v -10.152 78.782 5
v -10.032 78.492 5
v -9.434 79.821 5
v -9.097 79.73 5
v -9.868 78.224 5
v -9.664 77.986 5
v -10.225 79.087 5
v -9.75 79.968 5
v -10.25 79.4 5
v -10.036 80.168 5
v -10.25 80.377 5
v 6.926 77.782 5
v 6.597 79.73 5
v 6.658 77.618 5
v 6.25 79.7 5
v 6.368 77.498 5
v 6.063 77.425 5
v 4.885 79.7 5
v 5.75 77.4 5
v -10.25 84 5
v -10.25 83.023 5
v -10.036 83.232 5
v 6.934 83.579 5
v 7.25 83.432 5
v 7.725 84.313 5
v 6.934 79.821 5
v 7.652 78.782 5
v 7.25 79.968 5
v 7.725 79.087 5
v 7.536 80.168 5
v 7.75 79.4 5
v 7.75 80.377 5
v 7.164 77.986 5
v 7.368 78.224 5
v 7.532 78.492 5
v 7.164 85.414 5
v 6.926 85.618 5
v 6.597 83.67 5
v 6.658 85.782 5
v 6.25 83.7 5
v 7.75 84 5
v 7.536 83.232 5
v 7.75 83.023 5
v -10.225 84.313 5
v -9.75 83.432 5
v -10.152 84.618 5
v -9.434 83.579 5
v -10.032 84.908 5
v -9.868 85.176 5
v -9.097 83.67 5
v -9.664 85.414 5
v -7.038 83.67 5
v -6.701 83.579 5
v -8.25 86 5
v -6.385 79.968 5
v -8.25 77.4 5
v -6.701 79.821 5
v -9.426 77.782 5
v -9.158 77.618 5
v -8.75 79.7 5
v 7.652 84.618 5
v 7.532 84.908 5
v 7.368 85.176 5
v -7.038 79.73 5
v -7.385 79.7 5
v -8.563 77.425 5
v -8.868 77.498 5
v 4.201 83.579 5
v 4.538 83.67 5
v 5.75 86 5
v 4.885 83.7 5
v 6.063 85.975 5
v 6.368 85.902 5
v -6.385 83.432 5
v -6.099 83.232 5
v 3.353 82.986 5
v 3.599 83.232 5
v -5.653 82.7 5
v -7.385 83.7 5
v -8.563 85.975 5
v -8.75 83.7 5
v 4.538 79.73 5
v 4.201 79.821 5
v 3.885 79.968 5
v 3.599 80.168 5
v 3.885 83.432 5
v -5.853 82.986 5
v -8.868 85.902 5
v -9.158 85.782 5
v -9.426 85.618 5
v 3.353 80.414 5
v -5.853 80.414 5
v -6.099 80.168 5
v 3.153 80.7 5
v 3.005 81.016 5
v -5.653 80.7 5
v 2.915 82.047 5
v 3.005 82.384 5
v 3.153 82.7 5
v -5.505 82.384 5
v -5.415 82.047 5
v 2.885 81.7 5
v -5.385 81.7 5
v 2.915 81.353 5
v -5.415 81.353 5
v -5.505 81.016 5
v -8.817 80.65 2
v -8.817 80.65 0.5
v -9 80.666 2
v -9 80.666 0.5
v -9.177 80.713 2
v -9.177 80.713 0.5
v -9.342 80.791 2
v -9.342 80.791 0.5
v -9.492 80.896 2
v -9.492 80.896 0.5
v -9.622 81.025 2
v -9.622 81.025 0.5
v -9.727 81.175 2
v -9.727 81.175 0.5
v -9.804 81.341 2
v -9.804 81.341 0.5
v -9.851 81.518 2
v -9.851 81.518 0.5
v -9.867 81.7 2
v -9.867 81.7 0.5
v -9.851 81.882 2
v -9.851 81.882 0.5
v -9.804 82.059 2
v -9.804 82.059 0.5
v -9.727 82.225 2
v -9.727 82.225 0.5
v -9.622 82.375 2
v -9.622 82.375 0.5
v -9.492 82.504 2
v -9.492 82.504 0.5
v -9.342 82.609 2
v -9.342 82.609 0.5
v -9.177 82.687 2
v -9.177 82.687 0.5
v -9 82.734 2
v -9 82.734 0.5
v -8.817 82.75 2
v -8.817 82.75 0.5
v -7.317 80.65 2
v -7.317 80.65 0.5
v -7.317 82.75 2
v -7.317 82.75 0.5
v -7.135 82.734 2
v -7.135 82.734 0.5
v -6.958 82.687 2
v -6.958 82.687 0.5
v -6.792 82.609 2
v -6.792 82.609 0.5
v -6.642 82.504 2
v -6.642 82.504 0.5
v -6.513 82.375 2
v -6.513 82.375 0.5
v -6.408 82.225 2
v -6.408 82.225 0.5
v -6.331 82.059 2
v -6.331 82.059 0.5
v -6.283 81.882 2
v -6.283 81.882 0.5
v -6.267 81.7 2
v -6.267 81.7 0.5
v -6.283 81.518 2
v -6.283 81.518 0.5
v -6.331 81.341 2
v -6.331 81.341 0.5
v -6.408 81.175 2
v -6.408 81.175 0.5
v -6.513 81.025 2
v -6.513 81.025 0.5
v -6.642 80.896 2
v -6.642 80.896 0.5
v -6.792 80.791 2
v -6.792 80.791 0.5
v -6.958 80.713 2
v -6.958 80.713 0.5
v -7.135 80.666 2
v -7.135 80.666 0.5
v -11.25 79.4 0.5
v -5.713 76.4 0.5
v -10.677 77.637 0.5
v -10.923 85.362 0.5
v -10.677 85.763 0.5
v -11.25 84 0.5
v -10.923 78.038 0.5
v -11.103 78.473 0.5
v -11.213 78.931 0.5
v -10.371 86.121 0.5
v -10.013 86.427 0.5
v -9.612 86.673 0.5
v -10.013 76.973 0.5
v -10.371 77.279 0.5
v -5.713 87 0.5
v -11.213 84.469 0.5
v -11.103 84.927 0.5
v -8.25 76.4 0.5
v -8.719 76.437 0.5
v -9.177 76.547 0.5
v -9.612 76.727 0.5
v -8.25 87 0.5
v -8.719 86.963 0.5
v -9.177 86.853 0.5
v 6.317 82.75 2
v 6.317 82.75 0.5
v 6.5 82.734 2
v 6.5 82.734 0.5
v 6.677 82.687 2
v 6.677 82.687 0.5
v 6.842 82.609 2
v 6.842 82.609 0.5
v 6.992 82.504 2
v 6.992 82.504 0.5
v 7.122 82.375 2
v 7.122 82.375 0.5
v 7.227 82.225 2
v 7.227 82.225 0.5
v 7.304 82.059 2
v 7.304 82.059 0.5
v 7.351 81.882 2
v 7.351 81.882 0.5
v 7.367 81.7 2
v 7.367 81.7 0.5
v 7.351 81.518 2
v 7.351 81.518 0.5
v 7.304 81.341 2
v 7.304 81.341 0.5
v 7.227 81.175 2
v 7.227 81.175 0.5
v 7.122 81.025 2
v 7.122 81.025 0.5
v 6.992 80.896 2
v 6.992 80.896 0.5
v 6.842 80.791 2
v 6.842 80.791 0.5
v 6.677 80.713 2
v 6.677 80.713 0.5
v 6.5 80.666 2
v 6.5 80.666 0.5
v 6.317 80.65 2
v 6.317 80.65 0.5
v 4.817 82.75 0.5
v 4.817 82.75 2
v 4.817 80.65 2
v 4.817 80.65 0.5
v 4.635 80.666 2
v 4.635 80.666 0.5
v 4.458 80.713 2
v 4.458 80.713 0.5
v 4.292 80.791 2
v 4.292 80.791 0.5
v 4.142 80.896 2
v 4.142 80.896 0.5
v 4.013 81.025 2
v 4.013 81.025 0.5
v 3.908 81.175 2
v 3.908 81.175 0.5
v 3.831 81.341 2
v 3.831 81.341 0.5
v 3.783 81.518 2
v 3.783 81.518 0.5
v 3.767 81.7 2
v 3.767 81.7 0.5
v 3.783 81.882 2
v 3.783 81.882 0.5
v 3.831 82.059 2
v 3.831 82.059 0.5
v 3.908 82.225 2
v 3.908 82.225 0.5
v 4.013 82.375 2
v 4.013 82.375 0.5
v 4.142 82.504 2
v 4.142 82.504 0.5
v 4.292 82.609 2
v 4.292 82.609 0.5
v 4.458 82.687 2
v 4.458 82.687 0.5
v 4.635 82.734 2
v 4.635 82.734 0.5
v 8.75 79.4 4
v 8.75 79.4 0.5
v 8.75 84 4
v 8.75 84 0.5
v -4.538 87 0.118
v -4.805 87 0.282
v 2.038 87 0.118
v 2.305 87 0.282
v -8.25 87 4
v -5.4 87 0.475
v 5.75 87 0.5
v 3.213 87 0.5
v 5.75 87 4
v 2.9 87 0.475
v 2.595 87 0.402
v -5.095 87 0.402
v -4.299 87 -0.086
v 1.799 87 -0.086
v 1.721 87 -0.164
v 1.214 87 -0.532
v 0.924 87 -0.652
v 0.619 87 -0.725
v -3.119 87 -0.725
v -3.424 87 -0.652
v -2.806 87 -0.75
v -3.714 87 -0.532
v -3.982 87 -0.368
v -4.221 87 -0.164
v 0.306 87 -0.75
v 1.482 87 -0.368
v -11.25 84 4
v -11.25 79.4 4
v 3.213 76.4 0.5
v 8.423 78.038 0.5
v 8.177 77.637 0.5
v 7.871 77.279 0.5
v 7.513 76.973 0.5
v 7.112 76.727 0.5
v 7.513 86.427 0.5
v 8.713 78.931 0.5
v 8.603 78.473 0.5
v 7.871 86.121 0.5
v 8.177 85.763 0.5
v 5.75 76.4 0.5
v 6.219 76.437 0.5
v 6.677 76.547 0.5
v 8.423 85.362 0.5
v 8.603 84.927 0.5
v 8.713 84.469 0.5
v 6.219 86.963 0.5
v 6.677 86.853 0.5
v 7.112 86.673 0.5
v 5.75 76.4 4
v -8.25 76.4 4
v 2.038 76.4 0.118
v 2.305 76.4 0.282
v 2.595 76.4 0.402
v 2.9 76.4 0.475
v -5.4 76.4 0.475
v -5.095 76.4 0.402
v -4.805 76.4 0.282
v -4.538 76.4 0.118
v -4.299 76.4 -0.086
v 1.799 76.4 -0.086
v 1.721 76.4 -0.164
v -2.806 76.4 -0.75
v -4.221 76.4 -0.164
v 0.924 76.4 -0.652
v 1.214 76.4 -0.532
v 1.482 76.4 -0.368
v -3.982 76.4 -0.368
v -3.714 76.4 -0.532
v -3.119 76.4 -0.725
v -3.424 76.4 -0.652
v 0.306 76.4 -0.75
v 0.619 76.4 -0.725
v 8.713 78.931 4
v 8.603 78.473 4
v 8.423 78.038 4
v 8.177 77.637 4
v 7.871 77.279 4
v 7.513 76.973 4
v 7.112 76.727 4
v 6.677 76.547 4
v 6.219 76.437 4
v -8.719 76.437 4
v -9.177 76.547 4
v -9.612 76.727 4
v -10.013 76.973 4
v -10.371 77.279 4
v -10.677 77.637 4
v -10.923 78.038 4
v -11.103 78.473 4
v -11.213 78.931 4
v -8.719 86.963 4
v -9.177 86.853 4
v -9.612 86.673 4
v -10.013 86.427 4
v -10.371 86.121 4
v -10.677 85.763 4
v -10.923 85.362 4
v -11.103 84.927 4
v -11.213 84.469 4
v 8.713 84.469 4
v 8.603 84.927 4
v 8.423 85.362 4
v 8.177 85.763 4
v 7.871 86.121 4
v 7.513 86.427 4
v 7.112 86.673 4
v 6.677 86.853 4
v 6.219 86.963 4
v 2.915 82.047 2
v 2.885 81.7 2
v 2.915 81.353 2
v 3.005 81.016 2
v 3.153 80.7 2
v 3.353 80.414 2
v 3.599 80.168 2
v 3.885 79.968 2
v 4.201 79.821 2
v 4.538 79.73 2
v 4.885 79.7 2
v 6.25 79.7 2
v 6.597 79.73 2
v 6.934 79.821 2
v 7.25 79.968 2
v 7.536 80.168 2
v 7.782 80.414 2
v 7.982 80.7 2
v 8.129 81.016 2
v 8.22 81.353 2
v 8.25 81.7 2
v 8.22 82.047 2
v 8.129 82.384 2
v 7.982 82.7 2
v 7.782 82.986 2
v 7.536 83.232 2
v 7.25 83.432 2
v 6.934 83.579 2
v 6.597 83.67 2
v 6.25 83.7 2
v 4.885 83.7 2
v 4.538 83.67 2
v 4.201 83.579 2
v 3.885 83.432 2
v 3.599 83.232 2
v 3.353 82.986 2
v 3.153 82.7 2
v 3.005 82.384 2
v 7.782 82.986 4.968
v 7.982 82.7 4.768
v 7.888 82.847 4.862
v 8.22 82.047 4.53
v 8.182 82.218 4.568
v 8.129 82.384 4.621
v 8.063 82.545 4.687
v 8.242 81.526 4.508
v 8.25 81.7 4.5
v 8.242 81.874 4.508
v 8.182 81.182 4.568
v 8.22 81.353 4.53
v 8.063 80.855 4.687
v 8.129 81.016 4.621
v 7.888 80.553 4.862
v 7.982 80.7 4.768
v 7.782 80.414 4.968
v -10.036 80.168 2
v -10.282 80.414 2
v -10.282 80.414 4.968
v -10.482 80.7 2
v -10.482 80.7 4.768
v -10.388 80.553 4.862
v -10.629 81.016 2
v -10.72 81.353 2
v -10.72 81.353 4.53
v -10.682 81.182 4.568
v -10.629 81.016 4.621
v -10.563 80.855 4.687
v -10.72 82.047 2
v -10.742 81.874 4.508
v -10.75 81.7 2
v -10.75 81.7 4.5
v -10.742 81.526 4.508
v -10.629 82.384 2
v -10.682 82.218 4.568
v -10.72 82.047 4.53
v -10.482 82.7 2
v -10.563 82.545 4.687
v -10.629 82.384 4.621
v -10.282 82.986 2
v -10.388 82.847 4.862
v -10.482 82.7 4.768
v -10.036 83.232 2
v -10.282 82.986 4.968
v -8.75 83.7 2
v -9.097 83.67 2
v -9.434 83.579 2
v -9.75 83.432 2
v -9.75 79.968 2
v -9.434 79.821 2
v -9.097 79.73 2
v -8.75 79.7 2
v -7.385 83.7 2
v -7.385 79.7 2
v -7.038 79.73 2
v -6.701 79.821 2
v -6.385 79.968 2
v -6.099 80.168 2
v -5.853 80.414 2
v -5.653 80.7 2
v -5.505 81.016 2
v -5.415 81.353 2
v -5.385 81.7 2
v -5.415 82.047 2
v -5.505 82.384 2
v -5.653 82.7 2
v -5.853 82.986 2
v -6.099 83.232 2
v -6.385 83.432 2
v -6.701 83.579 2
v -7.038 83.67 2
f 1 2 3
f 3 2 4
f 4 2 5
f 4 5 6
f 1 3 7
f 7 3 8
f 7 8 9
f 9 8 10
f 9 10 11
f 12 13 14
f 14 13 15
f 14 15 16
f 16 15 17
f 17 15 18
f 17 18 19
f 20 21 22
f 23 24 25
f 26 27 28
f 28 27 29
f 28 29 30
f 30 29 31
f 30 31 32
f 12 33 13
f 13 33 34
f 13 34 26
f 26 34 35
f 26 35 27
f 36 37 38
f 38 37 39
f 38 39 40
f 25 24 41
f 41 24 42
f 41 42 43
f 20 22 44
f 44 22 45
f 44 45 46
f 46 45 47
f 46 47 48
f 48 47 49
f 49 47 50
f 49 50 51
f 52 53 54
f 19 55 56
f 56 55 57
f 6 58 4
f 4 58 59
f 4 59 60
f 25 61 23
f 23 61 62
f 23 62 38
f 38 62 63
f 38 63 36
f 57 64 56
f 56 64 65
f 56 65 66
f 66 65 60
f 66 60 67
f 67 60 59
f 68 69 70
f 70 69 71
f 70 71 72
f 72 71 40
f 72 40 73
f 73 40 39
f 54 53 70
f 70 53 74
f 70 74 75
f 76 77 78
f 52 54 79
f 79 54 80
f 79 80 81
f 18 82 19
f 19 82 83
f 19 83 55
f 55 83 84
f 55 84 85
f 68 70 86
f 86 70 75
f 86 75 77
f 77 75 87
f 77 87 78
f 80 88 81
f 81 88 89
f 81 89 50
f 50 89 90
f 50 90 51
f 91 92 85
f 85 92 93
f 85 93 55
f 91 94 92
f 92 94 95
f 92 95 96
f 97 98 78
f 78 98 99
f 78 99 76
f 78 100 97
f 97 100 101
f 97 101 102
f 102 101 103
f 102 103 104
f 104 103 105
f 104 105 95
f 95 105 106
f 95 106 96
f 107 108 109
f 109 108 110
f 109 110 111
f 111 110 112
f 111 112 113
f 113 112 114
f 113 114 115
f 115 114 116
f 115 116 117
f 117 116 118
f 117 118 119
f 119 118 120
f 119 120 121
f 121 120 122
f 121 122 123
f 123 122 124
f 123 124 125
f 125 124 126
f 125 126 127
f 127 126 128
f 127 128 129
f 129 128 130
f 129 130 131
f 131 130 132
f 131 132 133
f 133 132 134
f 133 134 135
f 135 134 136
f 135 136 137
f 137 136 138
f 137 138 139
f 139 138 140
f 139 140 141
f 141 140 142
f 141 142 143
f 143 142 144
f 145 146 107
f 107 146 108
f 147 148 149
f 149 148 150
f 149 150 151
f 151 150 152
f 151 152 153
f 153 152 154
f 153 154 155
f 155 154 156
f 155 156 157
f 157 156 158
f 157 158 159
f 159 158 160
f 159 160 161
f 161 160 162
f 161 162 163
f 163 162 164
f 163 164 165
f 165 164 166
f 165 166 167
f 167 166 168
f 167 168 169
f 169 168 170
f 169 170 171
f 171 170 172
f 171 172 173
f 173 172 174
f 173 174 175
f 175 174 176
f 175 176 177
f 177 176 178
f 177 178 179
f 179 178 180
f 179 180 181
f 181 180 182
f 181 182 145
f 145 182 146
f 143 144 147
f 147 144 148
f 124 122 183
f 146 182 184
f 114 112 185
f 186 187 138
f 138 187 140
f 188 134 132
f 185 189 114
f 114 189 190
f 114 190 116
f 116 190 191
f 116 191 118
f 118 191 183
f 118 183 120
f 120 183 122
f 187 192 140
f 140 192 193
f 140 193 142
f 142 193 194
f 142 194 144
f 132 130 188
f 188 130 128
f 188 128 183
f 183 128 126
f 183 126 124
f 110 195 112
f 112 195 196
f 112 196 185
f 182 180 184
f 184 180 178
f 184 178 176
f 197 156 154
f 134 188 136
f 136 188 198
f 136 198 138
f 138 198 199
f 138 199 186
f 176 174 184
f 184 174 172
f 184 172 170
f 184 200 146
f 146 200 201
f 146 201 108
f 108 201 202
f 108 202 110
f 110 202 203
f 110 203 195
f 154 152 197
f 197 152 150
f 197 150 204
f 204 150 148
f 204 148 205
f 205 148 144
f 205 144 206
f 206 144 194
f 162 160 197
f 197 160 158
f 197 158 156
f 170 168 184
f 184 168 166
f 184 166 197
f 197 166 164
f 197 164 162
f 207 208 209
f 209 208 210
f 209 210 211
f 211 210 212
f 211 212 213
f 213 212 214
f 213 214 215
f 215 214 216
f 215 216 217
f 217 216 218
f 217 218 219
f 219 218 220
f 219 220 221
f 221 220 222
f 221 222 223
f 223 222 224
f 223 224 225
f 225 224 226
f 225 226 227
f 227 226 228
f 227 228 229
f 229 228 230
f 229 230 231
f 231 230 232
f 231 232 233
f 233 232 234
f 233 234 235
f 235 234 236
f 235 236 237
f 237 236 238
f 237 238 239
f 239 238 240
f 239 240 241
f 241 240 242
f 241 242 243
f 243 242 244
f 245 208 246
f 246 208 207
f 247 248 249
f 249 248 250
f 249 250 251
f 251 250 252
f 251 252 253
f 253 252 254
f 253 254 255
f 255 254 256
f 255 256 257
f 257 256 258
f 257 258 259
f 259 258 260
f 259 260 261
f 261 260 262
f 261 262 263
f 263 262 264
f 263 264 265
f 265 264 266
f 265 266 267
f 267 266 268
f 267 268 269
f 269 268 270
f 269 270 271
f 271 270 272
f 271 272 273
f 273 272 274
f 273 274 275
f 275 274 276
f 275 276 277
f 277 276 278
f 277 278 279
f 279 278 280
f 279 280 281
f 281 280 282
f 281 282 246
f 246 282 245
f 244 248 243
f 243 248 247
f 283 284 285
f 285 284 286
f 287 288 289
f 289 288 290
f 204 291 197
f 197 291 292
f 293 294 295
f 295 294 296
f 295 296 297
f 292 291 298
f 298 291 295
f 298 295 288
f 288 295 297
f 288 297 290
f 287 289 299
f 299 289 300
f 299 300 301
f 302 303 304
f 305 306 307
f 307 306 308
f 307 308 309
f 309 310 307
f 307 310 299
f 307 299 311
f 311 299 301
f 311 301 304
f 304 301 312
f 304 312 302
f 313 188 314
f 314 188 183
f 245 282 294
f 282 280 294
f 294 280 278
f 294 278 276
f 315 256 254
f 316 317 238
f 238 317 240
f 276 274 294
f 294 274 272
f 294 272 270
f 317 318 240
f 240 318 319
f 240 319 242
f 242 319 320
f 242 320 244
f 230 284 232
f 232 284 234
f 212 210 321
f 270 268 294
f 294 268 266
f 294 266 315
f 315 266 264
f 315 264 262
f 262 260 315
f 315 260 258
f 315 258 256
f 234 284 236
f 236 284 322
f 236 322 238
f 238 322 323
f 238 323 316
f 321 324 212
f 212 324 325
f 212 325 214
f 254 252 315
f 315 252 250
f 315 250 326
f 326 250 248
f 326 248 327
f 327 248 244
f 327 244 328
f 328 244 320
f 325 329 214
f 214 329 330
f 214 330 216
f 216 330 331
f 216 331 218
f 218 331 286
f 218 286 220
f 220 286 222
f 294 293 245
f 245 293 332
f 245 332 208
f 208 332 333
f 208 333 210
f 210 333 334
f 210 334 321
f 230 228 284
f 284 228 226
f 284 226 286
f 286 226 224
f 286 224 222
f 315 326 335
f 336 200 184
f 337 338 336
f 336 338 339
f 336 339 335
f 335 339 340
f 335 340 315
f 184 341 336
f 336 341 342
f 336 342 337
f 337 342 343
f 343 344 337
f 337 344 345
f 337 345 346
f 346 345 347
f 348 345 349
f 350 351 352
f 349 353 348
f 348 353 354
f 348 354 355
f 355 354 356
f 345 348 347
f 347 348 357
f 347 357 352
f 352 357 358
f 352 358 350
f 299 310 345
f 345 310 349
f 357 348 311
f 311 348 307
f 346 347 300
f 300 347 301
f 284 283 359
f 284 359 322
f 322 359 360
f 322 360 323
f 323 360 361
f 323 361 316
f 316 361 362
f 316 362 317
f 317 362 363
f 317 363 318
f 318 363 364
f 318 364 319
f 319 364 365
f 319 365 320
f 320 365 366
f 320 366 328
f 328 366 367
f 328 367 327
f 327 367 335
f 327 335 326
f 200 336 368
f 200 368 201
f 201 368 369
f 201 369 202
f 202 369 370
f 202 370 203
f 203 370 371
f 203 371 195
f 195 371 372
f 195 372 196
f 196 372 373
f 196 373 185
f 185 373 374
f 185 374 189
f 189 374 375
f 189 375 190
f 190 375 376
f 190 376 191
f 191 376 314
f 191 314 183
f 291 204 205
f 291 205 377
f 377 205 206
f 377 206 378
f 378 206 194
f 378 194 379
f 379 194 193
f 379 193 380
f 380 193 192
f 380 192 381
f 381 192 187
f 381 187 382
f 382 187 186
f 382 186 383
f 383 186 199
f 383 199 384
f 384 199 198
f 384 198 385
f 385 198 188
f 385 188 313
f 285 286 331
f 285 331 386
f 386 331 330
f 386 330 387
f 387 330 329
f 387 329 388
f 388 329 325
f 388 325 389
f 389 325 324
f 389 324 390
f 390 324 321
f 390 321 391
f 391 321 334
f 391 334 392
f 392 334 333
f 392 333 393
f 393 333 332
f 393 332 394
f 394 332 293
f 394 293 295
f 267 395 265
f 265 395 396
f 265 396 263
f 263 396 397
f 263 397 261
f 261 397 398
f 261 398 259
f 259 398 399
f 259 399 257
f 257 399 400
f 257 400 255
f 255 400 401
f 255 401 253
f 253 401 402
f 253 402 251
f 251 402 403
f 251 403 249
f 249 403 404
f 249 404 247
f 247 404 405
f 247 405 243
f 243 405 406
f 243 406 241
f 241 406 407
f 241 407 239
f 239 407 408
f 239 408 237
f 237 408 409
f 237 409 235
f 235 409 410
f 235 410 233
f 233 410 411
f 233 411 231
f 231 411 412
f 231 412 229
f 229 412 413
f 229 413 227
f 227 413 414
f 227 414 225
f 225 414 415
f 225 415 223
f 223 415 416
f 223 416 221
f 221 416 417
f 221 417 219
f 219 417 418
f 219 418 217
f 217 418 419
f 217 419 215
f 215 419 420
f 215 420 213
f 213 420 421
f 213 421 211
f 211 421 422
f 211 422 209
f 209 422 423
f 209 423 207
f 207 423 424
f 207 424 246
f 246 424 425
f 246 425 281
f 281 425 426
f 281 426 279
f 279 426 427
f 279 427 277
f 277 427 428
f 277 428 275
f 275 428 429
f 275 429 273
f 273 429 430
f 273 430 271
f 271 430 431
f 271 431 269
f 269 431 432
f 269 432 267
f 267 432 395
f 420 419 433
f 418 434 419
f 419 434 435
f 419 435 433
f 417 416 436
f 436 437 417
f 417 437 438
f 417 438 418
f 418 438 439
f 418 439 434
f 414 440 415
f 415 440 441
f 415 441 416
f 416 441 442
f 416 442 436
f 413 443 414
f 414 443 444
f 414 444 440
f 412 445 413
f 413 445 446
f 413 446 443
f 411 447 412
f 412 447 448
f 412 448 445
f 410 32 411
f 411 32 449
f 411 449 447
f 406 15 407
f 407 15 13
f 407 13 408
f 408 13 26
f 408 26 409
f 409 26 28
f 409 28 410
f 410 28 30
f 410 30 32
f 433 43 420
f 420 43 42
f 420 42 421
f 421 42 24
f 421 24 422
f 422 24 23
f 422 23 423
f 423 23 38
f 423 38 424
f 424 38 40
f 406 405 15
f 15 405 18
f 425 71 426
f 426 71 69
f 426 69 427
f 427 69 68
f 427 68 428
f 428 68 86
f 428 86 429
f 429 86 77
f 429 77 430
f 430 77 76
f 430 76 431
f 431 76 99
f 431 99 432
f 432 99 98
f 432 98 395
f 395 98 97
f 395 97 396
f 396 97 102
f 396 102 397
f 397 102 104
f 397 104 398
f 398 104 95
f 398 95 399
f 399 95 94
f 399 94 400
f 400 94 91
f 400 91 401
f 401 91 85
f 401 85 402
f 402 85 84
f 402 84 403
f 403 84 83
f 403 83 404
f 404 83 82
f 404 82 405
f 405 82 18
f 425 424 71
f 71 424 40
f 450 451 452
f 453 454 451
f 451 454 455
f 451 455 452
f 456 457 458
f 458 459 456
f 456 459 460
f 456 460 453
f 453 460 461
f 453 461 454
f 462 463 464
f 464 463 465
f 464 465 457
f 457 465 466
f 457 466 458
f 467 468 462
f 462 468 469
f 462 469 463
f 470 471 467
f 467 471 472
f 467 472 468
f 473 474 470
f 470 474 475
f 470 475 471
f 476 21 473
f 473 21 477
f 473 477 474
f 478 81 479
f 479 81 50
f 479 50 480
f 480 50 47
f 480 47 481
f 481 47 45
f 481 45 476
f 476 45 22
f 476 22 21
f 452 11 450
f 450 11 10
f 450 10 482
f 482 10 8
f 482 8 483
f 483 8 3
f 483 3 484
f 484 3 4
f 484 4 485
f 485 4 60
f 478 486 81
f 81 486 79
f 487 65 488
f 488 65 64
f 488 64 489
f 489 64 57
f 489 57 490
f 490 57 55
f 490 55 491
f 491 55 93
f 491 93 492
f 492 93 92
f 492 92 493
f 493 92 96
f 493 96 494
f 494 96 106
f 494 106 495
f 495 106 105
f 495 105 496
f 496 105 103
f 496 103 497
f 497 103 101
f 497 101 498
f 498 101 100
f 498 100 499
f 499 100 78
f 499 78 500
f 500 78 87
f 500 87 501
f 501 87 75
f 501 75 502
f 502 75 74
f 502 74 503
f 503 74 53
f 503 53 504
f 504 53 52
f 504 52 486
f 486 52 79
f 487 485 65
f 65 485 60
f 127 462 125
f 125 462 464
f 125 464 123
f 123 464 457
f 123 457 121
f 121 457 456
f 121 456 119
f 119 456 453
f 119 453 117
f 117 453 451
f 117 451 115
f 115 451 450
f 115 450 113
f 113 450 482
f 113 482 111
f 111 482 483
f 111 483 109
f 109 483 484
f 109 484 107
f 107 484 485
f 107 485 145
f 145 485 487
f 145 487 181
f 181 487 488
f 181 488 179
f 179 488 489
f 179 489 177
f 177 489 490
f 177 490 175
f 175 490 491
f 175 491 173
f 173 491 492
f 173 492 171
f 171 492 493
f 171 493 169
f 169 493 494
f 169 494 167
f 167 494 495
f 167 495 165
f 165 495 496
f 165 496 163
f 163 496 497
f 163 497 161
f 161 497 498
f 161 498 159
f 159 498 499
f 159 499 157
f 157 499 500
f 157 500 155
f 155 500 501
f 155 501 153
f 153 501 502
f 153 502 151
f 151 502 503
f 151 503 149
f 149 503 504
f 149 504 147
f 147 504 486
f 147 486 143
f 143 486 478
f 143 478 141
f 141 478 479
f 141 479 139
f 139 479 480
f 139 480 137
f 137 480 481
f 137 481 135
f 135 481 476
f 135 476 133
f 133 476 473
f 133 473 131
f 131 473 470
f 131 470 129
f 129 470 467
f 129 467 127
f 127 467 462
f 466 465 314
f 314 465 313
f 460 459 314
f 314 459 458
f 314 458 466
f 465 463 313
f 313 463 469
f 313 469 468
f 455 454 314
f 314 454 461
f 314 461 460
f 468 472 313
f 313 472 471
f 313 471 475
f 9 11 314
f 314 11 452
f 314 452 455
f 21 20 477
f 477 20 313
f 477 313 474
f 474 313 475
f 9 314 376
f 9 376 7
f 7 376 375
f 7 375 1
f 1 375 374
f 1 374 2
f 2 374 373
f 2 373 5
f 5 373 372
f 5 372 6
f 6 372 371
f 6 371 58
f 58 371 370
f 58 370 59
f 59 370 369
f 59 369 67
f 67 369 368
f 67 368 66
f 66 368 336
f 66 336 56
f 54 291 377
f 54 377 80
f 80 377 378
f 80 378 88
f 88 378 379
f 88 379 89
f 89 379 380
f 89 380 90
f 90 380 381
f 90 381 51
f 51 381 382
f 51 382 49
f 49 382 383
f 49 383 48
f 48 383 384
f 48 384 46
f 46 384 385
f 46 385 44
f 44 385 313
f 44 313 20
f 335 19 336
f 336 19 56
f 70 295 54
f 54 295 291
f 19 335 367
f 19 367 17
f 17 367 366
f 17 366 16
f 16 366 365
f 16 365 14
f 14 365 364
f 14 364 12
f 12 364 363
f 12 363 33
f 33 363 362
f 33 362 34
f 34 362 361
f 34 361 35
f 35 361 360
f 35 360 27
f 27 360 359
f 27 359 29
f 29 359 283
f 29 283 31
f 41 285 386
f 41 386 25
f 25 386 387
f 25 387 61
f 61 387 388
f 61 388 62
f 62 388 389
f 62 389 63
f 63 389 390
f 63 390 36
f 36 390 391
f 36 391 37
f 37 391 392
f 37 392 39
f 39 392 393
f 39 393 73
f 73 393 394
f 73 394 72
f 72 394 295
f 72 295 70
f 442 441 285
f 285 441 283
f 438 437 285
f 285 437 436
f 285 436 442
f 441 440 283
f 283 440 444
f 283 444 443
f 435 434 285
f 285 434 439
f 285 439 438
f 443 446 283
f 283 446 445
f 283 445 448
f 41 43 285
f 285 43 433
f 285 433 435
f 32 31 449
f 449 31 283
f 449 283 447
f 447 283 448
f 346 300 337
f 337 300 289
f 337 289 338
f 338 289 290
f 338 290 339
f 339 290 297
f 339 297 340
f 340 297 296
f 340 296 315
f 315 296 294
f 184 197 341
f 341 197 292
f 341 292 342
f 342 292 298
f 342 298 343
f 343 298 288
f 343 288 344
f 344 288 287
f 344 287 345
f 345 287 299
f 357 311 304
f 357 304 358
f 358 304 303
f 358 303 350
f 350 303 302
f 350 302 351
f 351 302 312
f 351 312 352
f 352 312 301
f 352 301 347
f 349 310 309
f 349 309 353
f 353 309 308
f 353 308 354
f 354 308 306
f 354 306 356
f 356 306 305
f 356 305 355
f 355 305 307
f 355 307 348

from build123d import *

# Parameters (mm, degrees)
SKETCH1_W           = 20
SKETCH1_H           = 12.6
BOSS_EXTRUDE1_DEPTH = 5
CUT_EXTRUDE1_REACH  = 19.616
SKETCH2_W           = 20
SKETCH2_H           = 0.5
CUT_EXTRUDE2_REACH  = 89.84
SKETCH3_W           = 20
SKETCH3_H           = 2
BOSS_EXTRUDE2_DEPTH = 10.6
CUT_EXTRUDE4_DEPTH  = 88.839697745
FILLET1_R           = 3
CUT_EXTRUDE5_DEPTH  = 3
CHAMFER2_SIZE       = 1
FILLET2_R           = 2


with BuildPart() as part:
    # Sketch1 → Boss-Extrude1 (new body)
    with BuildSketch(Plane.XY):
        with Locations((-1.25, 80.7)):
            Rectangle(SKETCH1_W, SKETCH1_H)
    extrude(amount=BOSS_EXTRUDE1_DEPTH)

    # Sketch2 → Cut-Extrude1 (cut, up to next)
    with BuildSketch(Plane(origin=(0, 87, 0), x_dir=(1, 0, 0), z_dir=(0, 1, 0)), mode=Mode.PRIVATE) as cut_extrude1_sk1:
        with Locations((-1.25, -0.25)):
            Rectangle(SKETCH2_W, SKETCH2_H)
    cut_extrude1_tool1 = extrude(cut_extrude1_sk1.sketch, amount=-CUT_EXTRUDE1_REACH, mode=Mode.PRIVATE) & part.part
    add(cut_extrude1_tool1.solids().sort_by_distance((-1.25, 87, 0.25))[0], mode=Mode.SUBTRACT)

    # Sketch3 → Cut-Extrude2 (cut, up to next)
    with BuildSketch(Plane.XY.offset(5), mode=Mode.PRIVATE) as cut_extrude2_sk1:
        with Locations((-1.25, 75.4)):
            Rectangle(SKETCH3_W, SKETCH3_H)
    cut_extrude2_tool1 = extrude(cut_extrude2_sk1.sketch, amount=-CUT_EXTRUDE2_REACH, mode=Mode.PRIVATE) & part.part
    add(cut_extrude2_tool1.solids().sort_by_distance((-1.25, 75.4, 5))[0], mode=Mode.SUBTRACT)

    # Sketch4 → Boss-Extrude2 (add)
    with BuildSketch(Plane(origin=(0, 87, 0), x_dir=(1, 0, 0), z_dir=(0, 1, 0))):
        Polygon((-4.884848004, -0.5), (-3.634848004, 0.75), (1.134848004, 0.75), (2.384848004, -0.5), align=None)
    extrude(amount=-BOSS_EXTRUDE2_DEPTH)

    # Sketch6 → Cut-Extrude4 (cut, symmetric)
    with BuildSketch(Plane(origin=(0, 0, 0.5), x_dir=(-1, 0, 0), z_dir=(0, 0, -1))):
        with BuildLine():
            Line((-6.317424002, 82.75), (-4.817424002, 82.75))
            ThreePointArc((-4.817424002, 82.75), (-3.767424002, 81.7), (-4.817424002, 80.65))
            Line((-4.817424002, 80.65), (-6.317424002, 80.65))
            ThreePointArc((-6.317424002, 80.65), (-7.367424002, 81.7), (-6.317424002, 82.75))
        make_face()
    cut_extrude4 = extrude(amount=CUT_EXTRUDE4_DEPTH, both=True, mode=Mode.SUBTRACT)

    # Fillet1
    fillet1_edges = [part.edges().sort_by_distance(p)[0] for p in [
        (-11.25, 87, 2.75),
        (-11.25, 76.4, 2.75),
        (8.75, 76.4, 2.75),
        (8.75, 87, 2.75),
    ]]
    fillet(fillet1_edges, radius=FILLET1_R)

    # Sketch7 → Cut-Extrude5 (cut)
    with BuildSketch(Plane.XY.offset(5)):
        with BuildLine():
            Line((6.25, 79.7), (4.884848004, 79.7))
            ThreePointArc((4.884848004, 79.7), (2.884848004, 81.7), (4.884848004, 83.7))
            Line((4.884848004, 83.7), (6.25, 83.7))
            ThreePointArc((6.25, 83.7), (8.25, 81.7), (6.25, 79.7))
        make_face()
    cut_extrude5 = extrude(amount=-CUT_EXTRUDE5_DEPTH, mode=Mode.SUBTRACT)

    # Mirror1: Cut-Extrude4, Cut-Extrude5 across plane
    add(cut_extrude4.mirror(Plane(origin=(-1.25, 0, 0), x_dir=(0, 0, 1), z_dir=(1, 0, 0))), mode=Mode.SUBTRACT)
    add(cut_extrude5.mirror(Plane(origin=(-1.25, 0, 0), x_dir=(0, 0, 1), z_dir=(1, 0, 0))), mode=Mode.SUBTRACT)

    # Chamfer2
    # the kernel refuses this chamfer: 1 mm, written as the material it takes off along each edge
    with BuildSketch(Plane(origin=(5.75, 76.4, 5), x_dir=(0, -0.02749587661058217, -0.9996219169112968), z_dir=(-1, 0, 0)), Plane(origin=(-8.25, 87, 5), x_dir=(0, 0.02749587661058217, -0.9996219169112968), z_dir=(1, 0, 0))) as chamfer2_piece_1:
        Polygon((CHAMFER2_SIZE * 0.999621916911, -CHAMFER2_SIZE * 0.0274958766106), (-CHAMFER2_SIZE * 0.0274958766106, -CHAMFER2_SIZE * 0.999621916911), (0, 0), align=None)
    extrude(amount=14, mode=Mode.SUBTRACT)
    with BuildSketch(Plane(origin=(8.75, 84, 5), x_dir=(-0.9996219169112968, 0, 0.02749587661058651), z_dir=(0, -1, 0))) as chamfer2_piece_2:
        Polygon((CHAMFER2_SIZE * 0.999621916911, CHAMFER2_SIZE * 0.0274958766106), (-CHAMFER2_SIZE * 0.0274958766106, CHAMFER2_SIZE * 0.999621916911), (0, 0), align=None)
    extrude(amount=4.6, mode=Mode.SUBTRACT)
    with BuildSketch(Plane(origin=(-11.25, 79.4, 5), x_dir=(-0.027495876610585623, 0, -0.9996219169112968), z_dir=(0, 1, 0))) as chamfer2_piece_3:
        Polygon((CHAMFER2_SIZE * 0.999621916911, -CHAMFER2_SIZE * 0.0274958766106), (-CHAMFER2_SIZE * 0.0274958766106, -CHAMFER2_SIZE * 0.999621916911), (0, 0), align=None)
    extrude(amount=4.6, mode=Mode.SUBTRACT)
    with BuildSketch(Plane(origin=(5.75, 84, 5), x_dir=(0, 1, 0), z_dir=(-1, 0, 0))) as chamfer2_piece_4:
        Polygon((3 - CHAMFER2_SIZE, 0), (3, CHAMFER2_SIZE), (3, 0), align=None)
    revolve(axis=Axis((5.75, 84, 5), (0, 0, -1)), revolution_arc=90, mode=Mode.SUBTRACT)
    with BuildSketch(Plane(origin=(-8.25, 84, 5), x_dir=(0, 1, 0), z_dir=(1, 0, 0))) as chamfer2_piece_5:
        Polygon((3, -CHAMFER2_SIZE), (3 - CHAMFER2_SIZE, 0), (3, 0), align=None)
    revolve(axis=Axis((-8.25, 84, 5), (0, 0, 1)), revolution_arc=90, mode=Mode.SUBTRACT)
    with BuildSketch(Plane(origin=(-8.25, 79.4, 5), x_dir=(0, -1, 0), z_dir=(1, 0, 0))) as chamfer2_piece_6:
        Polygon((3, CHAMFER2_SIZE), (3 - CHAMFER2_SIZE, 0), (3, 0), align=None)
    revolve(axis=Axis((-8.25, 79.4, 5), (0, 0, -1)), revolution_arc=90, mode=Mode.SUBTRACT)
    with BuildSketch(Plane(origin=(5.75, 79.4, 5), x_dir=(0, -1, 0), z_dir=(-1, 0, 0))) as chamfer2_piece_7:
        Polygon((3 - CHAMFER2_SIZE, 0), (3, -CHAMFER2_SIZE), (3, 0), align=None)
    revolve(axis=Axis((5.75, 79.4, 5), (0, 0, 1)), revolution_arc=90, mode=Mode.SUBTRACT)

    # Fillet2
    fillet2_edges = [part.edges().sort_by_distance(p)[0] for p in [
        (2.384848004, 81.7, 0.5),
        (-4.884848004, 81.7, 0.5),
        (-3.634848004, 81.7, -0.75),
        (1.134848004, 81.7, -0.75),
    ]]
    fillet(fillet2_edges, radius=FILLET2_R)


solid = part.part
